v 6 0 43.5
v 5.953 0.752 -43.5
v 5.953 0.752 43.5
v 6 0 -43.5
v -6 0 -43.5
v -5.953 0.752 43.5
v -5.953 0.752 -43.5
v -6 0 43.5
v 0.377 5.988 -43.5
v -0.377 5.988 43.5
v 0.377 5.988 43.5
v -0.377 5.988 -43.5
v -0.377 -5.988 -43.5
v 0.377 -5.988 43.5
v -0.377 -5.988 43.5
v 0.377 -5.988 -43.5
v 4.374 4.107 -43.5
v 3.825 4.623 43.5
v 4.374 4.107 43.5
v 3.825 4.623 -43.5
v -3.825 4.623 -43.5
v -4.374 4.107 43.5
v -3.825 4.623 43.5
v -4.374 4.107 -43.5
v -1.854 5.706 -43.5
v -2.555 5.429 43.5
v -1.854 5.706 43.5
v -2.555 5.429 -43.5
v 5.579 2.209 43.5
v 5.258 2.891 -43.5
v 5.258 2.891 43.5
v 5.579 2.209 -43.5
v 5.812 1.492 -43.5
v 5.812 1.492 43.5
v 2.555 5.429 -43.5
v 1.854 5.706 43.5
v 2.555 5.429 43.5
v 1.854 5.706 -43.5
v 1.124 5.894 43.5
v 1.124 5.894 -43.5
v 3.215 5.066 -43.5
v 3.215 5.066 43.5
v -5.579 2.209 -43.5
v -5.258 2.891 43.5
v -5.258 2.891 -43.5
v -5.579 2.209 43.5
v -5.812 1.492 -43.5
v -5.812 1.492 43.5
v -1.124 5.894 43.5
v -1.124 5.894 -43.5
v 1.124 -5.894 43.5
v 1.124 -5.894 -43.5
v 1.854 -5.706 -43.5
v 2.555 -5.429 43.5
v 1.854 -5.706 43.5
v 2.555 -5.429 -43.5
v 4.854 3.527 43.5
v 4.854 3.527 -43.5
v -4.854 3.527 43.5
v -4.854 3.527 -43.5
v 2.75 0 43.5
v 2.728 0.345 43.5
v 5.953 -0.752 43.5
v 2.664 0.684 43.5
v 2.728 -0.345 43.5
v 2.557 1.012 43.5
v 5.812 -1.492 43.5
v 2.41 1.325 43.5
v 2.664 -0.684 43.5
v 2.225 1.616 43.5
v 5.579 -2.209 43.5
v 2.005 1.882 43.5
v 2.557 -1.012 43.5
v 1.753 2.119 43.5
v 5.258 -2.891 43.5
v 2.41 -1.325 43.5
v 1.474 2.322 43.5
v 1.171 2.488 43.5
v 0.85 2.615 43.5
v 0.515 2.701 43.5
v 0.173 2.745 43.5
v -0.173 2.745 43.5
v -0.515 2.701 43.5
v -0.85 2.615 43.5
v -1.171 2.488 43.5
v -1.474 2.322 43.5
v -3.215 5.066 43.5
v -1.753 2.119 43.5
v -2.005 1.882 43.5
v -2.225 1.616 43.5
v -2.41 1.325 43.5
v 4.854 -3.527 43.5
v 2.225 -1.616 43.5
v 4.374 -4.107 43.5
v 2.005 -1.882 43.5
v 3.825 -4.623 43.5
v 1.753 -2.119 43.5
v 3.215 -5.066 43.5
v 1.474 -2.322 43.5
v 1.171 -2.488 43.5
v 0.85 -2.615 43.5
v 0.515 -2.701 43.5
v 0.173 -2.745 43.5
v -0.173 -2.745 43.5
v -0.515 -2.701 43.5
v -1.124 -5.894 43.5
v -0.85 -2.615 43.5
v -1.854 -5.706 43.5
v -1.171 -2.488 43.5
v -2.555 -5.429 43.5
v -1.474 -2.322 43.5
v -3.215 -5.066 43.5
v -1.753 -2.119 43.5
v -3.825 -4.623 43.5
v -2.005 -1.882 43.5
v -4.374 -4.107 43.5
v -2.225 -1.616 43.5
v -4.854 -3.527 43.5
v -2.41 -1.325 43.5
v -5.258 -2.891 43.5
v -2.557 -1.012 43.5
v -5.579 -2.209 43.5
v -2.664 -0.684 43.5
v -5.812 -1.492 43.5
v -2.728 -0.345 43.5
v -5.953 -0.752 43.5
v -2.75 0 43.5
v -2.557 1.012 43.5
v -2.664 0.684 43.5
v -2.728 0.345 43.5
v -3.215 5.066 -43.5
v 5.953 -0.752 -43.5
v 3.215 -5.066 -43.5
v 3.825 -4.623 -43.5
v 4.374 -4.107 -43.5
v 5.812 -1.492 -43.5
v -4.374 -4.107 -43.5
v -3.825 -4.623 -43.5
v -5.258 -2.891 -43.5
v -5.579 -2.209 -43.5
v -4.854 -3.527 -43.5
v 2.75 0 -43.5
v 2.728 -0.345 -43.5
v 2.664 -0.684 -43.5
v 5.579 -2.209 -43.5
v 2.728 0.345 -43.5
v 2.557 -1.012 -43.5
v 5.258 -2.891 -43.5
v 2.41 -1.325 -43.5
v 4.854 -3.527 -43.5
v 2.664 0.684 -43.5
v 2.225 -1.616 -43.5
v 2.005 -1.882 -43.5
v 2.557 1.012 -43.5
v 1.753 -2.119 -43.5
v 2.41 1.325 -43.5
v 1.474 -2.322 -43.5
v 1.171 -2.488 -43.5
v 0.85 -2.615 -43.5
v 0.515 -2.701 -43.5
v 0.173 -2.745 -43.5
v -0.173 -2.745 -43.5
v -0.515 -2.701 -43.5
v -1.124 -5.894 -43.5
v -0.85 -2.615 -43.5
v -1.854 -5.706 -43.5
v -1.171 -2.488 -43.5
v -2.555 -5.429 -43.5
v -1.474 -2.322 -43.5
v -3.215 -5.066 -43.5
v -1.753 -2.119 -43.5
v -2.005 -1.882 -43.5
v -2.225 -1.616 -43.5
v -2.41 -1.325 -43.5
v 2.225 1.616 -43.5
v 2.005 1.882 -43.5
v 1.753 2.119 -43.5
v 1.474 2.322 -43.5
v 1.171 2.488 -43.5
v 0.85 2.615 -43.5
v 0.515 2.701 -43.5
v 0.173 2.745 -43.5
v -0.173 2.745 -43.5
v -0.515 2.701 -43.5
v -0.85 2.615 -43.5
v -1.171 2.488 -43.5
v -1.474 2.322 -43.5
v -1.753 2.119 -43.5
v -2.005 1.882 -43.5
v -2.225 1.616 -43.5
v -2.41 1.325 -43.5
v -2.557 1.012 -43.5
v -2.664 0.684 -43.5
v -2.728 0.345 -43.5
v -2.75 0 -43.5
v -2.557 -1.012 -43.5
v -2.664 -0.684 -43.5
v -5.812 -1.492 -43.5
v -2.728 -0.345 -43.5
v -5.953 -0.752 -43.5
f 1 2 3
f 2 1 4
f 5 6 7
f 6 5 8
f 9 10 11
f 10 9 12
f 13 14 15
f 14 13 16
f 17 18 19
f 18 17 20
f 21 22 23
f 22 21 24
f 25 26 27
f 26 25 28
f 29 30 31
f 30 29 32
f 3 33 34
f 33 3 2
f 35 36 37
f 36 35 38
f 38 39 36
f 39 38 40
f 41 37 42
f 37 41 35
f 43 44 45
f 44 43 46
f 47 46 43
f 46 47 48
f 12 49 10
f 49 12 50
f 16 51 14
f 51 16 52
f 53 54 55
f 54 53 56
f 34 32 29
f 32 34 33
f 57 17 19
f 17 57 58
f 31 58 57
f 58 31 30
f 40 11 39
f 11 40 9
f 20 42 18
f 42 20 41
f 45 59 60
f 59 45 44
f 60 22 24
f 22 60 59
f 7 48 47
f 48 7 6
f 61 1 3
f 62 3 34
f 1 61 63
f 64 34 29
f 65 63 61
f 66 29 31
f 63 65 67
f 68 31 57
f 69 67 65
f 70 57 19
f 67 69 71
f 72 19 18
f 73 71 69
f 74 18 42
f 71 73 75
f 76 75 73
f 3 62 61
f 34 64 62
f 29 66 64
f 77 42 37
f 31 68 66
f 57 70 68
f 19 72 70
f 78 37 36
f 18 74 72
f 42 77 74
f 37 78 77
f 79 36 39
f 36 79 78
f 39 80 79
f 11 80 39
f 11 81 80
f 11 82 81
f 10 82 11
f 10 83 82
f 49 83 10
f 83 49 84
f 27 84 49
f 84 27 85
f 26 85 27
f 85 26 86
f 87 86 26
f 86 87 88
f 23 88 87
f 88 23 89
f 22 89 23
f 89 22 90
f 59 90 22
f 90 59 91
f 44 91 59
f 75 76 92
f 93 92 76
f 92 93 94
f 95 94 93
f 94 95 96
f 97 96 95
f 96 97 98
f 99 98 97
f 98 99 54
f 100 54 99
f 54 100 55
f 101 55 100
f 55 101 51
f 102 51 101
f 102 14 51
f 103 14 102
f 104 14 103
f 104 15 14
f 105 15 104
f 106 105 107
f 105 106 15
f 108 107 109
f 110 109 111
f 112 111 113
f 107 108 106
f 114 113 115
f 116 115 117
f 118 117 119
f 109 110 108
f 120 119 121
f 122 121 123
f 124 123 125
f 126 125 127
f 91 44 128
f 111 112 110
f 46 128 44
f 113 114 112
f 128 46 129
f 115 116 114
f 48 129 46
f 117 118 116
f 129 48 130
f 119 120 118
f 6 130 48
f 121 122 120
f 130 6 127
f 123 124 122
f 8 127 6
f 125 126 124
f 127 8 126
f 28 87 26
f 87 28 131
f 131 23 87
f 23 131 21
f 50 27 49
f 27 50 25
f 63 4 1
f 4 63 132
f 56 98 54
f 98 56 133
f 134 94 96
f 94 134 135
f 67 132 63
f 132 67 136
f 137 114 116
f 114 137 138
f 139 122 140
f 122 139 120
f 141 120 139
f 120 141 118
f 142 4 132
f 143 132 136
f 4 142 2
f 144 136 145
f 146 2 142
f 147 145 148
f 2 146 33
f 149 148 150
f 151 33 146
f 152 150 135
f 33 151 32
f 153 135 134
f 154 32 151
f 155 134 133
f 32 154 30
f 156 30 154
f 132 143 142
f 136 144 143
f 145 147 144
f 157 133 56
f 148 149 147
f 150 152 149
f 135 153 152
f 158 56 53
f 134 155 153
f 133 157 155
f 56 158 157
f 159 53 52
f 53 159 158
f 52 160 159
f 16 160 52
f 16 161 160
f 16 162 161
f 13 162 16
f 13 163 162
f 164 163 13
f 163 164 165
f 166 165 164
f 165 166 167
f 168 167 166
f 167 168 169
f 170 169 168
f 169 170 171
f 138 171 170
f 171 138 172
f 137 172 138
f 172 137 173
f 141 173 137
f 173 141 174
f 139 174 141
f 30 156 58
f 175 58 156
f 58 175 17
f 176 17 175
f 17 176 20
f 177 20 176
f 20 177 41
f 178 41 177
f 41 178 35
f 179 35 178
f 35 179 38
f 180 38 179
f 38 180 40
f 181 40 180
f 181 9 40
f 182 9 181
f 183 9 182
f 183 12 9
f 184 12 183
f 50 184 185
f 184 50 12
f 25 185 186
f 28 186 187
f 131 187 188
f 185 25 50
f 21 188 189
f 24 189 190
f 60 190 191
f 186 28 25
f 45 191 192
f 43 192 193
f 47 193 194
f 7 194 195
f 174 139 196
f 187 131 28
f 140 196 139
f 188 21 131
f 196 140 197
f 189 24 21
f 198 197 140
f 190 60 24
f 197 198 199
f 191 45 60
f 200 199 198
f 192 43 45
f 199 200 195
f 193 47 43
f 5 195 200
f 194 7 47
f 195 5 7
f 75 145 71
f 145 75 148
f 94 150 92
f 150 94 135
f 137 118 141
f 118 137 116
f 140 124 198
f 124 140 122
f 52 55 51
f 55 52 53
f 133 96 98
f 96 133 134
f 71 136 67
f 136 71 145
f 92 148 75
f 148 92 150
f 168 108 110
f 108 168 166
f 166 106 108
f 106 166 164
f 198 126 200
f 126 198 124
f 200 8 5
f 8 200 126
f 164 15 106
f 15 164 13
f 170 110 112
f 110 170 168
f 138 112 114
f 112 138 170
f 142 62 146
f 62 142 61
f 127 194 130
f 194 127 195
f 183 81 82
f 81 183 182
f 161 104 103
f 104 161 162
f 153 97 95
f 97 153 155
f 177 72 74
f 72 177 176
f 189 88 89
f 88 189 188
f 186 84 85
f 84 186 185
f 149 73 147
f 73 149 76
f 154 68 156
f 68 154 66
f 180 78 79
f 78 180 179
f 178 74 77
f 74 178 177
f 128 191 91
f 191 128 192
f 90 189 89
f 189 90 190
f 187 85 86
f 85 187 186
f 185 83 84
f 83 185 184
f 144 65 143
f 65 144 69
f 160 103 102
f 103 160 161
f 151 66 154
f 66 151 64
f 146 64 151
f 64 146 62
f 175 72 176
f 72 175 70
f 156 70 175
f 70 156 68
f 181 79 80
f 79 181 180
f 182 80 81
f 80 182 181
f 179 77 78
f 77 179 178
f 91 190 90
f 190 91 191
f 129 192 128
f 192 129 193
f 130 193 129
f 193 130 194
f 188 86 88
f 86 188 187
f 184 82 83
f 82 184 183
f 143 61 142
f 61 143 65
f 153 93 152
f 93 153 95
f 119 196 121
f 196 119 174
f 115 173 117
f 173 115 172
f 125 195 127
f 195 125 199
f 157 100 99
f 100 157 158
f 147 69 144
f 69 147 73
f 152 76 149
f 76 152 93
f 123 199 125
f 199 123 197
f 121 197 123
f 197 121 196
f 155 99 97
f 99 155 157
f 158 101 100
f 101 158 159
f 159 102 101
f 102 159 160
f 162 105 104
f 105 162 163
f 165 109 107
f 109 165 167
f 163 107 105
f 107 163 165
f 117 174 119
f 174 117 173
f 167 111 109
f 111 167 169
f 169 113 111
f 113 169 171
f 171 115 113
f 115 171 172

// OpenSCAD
$fn = 50;


difference() {
	union() {
		translate(v = [0, 0, -43.5000000000]) {
			cylinder(h = 87, r = 6.0000000000);
		}
	}
	union() {
		translate(v = [0, 0, -100.0000000000]) {
			cylinder(h = 200, r = 2.7500000000);
		}
	}
}
